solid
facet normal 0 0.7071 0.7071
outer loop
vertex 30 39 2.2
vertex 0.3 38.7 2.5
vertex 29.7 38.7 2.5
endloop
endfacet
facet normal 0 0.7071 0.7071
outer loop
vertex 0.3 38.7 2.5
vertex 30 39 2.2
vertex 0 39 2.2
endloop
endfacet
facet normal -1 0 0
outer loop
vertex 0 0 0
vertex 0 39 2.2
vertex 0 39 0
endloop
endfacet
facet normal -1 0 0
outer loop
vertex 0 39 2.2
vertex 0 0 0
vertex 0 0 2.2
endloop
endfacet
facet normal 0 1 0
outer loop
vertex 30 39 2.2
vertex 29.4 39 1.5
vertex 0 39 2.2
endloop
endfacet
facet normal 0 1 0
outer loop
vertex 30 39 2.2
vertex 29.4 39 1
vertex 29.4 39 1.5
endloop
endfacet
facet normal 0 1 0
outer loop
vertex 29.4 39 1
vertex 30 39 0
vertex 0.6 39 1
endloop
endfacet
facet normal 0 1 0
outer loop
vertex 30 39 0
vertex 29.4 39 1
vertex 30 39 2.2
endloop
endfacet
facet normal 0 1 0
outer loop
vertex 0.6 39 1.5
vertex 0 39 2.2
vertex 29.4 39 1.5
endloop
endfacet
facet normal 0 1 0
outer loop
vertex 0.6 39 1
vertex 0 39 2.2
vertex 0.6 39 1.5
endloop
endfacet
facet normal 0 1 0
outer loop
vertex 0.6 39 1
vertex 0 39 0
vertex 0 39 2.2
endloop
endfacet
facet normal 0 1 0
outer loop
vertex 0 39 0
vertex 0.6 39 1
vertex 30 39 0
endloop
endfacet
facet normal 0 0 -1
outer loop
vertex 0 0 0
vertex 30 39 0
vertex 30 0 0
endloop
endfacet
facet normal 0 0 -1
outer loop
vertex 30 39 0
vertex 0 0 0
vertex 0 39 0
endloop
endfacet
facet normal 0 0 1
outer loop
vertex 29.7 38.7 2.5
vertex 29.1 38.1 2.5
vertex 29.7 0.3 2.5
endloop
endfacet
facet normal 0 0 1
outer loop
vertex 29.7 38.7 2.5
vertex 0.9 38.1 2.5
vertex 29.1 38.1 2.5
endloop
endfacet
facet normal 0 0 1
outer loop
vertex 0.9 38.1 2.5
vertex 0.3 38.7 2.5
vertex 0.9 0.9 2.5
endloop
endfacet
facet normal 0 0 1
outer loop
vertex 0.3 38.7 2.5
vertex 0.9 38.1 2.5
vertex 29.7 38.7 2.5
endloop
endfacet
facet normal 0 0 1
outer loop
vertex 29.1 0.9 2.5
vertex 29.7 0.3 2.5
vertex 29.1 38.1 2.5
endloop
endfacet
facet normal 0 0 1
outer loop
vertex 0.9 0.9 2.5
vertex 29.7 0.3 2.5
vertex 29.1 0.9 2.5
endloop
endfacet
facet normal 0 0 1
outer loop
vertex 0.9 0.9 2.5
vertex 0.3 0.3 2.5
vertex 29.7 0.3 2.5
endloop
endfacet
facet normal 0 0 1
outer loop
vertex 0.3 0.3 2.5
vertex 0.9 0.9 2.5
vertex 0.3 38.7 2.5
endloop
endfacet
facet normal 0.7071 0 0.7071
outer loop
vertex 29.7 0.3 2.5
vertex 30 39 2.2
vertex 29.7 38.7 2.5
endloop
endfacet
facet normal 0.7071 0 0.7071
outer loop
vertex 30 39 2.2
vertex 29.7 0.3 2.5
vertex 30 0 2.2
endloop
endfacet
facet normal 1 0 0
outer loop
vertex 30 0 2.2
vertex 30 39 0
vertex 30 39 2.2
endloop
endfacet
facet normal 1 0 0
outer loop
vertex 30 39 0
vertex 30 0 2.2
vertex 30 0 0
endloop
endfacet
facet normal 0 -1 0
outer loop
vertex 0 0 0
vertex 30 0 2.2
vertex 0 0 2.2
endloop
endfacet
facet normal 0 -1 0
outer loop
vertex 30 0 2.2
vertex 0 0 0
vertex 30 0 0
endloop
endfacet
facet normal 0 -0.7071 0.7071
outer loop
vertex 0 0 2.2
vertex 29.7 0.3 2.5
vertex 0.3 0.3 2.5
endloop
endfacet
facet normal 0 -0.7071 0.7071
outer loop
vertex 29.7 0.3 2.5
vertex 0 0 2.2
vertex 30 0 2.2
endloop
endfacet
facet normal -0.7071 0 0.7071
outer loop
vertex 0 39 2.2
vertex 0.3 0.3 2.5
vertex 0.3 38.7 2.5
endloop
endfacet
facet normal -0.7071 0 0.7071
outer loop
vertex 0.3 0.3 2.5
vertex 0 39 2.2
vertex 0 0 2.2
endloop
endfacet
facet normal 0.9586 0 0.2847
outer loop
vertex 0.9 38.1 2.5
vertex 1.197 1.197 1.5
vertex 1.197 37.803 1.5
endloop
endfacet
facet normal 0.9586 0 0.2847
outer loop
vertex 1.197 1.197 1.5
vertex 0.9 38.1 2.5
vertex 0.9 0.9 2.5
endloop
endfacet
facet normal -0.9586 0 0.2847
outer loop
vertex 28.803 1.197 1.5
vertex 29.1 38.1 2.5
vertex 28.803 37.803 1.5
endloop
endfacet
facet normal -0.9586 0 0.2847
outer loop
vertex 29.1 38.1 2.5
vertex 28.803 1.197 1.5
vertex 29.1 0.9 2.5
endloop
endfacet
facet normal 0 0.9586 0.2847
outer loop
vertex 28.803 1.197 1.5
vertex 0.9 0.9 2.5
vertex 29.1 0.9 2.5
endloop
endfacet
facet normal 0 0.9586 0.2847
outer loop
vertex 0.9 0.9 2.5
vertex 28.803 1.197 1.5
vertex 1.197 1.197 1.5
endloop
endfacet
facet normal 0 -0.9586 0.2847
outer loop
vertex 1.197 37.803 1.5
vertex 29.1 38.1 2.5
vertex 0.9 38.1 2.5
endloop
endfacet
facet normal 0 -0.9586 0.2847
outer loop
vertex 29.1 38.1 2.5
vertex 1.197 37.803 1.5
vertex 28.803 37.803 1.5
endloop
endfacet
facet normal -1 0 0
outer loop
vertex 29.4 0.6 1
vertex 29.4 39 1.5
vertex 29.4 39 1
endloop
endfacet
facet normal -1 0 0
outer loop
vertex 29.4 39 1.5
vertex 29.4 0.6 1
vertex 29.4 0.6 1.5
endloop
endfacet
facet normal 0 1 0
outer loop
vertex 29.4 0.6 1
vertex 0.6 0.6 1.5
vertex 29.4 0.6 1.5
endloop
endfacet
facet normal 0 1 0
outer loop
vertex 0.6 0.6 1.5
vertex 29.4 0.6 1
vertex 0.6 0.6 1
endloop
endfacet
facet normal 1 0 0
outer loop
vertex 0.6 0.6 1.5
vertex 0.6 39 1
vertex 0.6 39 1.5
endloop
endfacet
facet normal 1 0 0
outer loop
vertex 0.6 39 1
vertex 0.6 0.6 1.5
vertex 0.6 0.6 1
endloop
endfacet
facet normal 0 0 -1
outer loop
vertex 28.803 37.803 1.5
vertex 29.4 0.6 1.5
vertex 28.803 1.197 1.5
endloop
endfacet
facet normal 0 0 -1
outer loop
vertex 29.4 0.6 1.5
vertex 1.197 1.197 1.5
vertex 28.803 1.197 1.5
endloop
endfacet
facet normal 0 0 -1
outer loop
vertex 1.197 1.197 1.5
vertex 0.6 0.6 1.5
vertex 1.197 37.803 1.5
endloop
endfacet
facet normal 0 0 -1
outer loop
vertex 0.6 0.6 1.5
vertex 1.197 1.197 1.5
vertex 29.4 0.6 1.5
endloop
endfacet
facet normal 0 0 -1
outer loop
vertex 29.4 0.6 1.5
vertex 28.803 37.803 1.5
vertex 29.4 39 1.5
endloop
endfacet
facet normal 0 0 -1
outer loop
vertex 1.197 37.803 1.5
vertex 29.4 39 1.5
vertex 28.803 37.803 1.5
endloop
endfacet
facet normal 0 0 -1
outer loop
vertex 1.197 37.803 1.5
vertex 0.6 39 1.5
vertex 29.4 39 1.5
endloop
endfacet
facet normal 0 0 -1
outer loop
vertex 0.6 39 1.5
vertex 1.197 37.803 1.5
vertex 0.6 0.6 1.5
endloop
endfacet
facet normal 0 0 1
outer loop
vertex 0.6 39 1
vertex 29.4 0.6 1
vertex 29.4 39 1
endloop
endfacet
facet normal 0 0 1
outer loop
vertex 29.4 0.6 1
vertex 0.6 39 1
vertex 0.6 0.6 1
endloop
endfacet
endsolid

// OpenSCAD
// Photo_Frame_Large_P.stl  -  Store Versile room frame (Rev C)
// Quantity: 2   Filament: Gold silk (e.g. PLA Silk+ Gold)
// Print: layer 0.12 mm, infill 100%, 2 walls, brim 0 mm, NO supports
// Orientation: back  (lying on its back, front face up)
// Notes: Gold face up (ironing on). Photo slot opens at the top.
// The library draws parts with their front toward +Y; mirror([0,1,0]) makes the real
// part face the viewer correctly (see build.py). Edit dimensions in versile_parts.scad.
use <../versile_parts.scad>

rotate([-90, 0, 0]) mirror([0, 1, 0]) photo_frame_large_p();
